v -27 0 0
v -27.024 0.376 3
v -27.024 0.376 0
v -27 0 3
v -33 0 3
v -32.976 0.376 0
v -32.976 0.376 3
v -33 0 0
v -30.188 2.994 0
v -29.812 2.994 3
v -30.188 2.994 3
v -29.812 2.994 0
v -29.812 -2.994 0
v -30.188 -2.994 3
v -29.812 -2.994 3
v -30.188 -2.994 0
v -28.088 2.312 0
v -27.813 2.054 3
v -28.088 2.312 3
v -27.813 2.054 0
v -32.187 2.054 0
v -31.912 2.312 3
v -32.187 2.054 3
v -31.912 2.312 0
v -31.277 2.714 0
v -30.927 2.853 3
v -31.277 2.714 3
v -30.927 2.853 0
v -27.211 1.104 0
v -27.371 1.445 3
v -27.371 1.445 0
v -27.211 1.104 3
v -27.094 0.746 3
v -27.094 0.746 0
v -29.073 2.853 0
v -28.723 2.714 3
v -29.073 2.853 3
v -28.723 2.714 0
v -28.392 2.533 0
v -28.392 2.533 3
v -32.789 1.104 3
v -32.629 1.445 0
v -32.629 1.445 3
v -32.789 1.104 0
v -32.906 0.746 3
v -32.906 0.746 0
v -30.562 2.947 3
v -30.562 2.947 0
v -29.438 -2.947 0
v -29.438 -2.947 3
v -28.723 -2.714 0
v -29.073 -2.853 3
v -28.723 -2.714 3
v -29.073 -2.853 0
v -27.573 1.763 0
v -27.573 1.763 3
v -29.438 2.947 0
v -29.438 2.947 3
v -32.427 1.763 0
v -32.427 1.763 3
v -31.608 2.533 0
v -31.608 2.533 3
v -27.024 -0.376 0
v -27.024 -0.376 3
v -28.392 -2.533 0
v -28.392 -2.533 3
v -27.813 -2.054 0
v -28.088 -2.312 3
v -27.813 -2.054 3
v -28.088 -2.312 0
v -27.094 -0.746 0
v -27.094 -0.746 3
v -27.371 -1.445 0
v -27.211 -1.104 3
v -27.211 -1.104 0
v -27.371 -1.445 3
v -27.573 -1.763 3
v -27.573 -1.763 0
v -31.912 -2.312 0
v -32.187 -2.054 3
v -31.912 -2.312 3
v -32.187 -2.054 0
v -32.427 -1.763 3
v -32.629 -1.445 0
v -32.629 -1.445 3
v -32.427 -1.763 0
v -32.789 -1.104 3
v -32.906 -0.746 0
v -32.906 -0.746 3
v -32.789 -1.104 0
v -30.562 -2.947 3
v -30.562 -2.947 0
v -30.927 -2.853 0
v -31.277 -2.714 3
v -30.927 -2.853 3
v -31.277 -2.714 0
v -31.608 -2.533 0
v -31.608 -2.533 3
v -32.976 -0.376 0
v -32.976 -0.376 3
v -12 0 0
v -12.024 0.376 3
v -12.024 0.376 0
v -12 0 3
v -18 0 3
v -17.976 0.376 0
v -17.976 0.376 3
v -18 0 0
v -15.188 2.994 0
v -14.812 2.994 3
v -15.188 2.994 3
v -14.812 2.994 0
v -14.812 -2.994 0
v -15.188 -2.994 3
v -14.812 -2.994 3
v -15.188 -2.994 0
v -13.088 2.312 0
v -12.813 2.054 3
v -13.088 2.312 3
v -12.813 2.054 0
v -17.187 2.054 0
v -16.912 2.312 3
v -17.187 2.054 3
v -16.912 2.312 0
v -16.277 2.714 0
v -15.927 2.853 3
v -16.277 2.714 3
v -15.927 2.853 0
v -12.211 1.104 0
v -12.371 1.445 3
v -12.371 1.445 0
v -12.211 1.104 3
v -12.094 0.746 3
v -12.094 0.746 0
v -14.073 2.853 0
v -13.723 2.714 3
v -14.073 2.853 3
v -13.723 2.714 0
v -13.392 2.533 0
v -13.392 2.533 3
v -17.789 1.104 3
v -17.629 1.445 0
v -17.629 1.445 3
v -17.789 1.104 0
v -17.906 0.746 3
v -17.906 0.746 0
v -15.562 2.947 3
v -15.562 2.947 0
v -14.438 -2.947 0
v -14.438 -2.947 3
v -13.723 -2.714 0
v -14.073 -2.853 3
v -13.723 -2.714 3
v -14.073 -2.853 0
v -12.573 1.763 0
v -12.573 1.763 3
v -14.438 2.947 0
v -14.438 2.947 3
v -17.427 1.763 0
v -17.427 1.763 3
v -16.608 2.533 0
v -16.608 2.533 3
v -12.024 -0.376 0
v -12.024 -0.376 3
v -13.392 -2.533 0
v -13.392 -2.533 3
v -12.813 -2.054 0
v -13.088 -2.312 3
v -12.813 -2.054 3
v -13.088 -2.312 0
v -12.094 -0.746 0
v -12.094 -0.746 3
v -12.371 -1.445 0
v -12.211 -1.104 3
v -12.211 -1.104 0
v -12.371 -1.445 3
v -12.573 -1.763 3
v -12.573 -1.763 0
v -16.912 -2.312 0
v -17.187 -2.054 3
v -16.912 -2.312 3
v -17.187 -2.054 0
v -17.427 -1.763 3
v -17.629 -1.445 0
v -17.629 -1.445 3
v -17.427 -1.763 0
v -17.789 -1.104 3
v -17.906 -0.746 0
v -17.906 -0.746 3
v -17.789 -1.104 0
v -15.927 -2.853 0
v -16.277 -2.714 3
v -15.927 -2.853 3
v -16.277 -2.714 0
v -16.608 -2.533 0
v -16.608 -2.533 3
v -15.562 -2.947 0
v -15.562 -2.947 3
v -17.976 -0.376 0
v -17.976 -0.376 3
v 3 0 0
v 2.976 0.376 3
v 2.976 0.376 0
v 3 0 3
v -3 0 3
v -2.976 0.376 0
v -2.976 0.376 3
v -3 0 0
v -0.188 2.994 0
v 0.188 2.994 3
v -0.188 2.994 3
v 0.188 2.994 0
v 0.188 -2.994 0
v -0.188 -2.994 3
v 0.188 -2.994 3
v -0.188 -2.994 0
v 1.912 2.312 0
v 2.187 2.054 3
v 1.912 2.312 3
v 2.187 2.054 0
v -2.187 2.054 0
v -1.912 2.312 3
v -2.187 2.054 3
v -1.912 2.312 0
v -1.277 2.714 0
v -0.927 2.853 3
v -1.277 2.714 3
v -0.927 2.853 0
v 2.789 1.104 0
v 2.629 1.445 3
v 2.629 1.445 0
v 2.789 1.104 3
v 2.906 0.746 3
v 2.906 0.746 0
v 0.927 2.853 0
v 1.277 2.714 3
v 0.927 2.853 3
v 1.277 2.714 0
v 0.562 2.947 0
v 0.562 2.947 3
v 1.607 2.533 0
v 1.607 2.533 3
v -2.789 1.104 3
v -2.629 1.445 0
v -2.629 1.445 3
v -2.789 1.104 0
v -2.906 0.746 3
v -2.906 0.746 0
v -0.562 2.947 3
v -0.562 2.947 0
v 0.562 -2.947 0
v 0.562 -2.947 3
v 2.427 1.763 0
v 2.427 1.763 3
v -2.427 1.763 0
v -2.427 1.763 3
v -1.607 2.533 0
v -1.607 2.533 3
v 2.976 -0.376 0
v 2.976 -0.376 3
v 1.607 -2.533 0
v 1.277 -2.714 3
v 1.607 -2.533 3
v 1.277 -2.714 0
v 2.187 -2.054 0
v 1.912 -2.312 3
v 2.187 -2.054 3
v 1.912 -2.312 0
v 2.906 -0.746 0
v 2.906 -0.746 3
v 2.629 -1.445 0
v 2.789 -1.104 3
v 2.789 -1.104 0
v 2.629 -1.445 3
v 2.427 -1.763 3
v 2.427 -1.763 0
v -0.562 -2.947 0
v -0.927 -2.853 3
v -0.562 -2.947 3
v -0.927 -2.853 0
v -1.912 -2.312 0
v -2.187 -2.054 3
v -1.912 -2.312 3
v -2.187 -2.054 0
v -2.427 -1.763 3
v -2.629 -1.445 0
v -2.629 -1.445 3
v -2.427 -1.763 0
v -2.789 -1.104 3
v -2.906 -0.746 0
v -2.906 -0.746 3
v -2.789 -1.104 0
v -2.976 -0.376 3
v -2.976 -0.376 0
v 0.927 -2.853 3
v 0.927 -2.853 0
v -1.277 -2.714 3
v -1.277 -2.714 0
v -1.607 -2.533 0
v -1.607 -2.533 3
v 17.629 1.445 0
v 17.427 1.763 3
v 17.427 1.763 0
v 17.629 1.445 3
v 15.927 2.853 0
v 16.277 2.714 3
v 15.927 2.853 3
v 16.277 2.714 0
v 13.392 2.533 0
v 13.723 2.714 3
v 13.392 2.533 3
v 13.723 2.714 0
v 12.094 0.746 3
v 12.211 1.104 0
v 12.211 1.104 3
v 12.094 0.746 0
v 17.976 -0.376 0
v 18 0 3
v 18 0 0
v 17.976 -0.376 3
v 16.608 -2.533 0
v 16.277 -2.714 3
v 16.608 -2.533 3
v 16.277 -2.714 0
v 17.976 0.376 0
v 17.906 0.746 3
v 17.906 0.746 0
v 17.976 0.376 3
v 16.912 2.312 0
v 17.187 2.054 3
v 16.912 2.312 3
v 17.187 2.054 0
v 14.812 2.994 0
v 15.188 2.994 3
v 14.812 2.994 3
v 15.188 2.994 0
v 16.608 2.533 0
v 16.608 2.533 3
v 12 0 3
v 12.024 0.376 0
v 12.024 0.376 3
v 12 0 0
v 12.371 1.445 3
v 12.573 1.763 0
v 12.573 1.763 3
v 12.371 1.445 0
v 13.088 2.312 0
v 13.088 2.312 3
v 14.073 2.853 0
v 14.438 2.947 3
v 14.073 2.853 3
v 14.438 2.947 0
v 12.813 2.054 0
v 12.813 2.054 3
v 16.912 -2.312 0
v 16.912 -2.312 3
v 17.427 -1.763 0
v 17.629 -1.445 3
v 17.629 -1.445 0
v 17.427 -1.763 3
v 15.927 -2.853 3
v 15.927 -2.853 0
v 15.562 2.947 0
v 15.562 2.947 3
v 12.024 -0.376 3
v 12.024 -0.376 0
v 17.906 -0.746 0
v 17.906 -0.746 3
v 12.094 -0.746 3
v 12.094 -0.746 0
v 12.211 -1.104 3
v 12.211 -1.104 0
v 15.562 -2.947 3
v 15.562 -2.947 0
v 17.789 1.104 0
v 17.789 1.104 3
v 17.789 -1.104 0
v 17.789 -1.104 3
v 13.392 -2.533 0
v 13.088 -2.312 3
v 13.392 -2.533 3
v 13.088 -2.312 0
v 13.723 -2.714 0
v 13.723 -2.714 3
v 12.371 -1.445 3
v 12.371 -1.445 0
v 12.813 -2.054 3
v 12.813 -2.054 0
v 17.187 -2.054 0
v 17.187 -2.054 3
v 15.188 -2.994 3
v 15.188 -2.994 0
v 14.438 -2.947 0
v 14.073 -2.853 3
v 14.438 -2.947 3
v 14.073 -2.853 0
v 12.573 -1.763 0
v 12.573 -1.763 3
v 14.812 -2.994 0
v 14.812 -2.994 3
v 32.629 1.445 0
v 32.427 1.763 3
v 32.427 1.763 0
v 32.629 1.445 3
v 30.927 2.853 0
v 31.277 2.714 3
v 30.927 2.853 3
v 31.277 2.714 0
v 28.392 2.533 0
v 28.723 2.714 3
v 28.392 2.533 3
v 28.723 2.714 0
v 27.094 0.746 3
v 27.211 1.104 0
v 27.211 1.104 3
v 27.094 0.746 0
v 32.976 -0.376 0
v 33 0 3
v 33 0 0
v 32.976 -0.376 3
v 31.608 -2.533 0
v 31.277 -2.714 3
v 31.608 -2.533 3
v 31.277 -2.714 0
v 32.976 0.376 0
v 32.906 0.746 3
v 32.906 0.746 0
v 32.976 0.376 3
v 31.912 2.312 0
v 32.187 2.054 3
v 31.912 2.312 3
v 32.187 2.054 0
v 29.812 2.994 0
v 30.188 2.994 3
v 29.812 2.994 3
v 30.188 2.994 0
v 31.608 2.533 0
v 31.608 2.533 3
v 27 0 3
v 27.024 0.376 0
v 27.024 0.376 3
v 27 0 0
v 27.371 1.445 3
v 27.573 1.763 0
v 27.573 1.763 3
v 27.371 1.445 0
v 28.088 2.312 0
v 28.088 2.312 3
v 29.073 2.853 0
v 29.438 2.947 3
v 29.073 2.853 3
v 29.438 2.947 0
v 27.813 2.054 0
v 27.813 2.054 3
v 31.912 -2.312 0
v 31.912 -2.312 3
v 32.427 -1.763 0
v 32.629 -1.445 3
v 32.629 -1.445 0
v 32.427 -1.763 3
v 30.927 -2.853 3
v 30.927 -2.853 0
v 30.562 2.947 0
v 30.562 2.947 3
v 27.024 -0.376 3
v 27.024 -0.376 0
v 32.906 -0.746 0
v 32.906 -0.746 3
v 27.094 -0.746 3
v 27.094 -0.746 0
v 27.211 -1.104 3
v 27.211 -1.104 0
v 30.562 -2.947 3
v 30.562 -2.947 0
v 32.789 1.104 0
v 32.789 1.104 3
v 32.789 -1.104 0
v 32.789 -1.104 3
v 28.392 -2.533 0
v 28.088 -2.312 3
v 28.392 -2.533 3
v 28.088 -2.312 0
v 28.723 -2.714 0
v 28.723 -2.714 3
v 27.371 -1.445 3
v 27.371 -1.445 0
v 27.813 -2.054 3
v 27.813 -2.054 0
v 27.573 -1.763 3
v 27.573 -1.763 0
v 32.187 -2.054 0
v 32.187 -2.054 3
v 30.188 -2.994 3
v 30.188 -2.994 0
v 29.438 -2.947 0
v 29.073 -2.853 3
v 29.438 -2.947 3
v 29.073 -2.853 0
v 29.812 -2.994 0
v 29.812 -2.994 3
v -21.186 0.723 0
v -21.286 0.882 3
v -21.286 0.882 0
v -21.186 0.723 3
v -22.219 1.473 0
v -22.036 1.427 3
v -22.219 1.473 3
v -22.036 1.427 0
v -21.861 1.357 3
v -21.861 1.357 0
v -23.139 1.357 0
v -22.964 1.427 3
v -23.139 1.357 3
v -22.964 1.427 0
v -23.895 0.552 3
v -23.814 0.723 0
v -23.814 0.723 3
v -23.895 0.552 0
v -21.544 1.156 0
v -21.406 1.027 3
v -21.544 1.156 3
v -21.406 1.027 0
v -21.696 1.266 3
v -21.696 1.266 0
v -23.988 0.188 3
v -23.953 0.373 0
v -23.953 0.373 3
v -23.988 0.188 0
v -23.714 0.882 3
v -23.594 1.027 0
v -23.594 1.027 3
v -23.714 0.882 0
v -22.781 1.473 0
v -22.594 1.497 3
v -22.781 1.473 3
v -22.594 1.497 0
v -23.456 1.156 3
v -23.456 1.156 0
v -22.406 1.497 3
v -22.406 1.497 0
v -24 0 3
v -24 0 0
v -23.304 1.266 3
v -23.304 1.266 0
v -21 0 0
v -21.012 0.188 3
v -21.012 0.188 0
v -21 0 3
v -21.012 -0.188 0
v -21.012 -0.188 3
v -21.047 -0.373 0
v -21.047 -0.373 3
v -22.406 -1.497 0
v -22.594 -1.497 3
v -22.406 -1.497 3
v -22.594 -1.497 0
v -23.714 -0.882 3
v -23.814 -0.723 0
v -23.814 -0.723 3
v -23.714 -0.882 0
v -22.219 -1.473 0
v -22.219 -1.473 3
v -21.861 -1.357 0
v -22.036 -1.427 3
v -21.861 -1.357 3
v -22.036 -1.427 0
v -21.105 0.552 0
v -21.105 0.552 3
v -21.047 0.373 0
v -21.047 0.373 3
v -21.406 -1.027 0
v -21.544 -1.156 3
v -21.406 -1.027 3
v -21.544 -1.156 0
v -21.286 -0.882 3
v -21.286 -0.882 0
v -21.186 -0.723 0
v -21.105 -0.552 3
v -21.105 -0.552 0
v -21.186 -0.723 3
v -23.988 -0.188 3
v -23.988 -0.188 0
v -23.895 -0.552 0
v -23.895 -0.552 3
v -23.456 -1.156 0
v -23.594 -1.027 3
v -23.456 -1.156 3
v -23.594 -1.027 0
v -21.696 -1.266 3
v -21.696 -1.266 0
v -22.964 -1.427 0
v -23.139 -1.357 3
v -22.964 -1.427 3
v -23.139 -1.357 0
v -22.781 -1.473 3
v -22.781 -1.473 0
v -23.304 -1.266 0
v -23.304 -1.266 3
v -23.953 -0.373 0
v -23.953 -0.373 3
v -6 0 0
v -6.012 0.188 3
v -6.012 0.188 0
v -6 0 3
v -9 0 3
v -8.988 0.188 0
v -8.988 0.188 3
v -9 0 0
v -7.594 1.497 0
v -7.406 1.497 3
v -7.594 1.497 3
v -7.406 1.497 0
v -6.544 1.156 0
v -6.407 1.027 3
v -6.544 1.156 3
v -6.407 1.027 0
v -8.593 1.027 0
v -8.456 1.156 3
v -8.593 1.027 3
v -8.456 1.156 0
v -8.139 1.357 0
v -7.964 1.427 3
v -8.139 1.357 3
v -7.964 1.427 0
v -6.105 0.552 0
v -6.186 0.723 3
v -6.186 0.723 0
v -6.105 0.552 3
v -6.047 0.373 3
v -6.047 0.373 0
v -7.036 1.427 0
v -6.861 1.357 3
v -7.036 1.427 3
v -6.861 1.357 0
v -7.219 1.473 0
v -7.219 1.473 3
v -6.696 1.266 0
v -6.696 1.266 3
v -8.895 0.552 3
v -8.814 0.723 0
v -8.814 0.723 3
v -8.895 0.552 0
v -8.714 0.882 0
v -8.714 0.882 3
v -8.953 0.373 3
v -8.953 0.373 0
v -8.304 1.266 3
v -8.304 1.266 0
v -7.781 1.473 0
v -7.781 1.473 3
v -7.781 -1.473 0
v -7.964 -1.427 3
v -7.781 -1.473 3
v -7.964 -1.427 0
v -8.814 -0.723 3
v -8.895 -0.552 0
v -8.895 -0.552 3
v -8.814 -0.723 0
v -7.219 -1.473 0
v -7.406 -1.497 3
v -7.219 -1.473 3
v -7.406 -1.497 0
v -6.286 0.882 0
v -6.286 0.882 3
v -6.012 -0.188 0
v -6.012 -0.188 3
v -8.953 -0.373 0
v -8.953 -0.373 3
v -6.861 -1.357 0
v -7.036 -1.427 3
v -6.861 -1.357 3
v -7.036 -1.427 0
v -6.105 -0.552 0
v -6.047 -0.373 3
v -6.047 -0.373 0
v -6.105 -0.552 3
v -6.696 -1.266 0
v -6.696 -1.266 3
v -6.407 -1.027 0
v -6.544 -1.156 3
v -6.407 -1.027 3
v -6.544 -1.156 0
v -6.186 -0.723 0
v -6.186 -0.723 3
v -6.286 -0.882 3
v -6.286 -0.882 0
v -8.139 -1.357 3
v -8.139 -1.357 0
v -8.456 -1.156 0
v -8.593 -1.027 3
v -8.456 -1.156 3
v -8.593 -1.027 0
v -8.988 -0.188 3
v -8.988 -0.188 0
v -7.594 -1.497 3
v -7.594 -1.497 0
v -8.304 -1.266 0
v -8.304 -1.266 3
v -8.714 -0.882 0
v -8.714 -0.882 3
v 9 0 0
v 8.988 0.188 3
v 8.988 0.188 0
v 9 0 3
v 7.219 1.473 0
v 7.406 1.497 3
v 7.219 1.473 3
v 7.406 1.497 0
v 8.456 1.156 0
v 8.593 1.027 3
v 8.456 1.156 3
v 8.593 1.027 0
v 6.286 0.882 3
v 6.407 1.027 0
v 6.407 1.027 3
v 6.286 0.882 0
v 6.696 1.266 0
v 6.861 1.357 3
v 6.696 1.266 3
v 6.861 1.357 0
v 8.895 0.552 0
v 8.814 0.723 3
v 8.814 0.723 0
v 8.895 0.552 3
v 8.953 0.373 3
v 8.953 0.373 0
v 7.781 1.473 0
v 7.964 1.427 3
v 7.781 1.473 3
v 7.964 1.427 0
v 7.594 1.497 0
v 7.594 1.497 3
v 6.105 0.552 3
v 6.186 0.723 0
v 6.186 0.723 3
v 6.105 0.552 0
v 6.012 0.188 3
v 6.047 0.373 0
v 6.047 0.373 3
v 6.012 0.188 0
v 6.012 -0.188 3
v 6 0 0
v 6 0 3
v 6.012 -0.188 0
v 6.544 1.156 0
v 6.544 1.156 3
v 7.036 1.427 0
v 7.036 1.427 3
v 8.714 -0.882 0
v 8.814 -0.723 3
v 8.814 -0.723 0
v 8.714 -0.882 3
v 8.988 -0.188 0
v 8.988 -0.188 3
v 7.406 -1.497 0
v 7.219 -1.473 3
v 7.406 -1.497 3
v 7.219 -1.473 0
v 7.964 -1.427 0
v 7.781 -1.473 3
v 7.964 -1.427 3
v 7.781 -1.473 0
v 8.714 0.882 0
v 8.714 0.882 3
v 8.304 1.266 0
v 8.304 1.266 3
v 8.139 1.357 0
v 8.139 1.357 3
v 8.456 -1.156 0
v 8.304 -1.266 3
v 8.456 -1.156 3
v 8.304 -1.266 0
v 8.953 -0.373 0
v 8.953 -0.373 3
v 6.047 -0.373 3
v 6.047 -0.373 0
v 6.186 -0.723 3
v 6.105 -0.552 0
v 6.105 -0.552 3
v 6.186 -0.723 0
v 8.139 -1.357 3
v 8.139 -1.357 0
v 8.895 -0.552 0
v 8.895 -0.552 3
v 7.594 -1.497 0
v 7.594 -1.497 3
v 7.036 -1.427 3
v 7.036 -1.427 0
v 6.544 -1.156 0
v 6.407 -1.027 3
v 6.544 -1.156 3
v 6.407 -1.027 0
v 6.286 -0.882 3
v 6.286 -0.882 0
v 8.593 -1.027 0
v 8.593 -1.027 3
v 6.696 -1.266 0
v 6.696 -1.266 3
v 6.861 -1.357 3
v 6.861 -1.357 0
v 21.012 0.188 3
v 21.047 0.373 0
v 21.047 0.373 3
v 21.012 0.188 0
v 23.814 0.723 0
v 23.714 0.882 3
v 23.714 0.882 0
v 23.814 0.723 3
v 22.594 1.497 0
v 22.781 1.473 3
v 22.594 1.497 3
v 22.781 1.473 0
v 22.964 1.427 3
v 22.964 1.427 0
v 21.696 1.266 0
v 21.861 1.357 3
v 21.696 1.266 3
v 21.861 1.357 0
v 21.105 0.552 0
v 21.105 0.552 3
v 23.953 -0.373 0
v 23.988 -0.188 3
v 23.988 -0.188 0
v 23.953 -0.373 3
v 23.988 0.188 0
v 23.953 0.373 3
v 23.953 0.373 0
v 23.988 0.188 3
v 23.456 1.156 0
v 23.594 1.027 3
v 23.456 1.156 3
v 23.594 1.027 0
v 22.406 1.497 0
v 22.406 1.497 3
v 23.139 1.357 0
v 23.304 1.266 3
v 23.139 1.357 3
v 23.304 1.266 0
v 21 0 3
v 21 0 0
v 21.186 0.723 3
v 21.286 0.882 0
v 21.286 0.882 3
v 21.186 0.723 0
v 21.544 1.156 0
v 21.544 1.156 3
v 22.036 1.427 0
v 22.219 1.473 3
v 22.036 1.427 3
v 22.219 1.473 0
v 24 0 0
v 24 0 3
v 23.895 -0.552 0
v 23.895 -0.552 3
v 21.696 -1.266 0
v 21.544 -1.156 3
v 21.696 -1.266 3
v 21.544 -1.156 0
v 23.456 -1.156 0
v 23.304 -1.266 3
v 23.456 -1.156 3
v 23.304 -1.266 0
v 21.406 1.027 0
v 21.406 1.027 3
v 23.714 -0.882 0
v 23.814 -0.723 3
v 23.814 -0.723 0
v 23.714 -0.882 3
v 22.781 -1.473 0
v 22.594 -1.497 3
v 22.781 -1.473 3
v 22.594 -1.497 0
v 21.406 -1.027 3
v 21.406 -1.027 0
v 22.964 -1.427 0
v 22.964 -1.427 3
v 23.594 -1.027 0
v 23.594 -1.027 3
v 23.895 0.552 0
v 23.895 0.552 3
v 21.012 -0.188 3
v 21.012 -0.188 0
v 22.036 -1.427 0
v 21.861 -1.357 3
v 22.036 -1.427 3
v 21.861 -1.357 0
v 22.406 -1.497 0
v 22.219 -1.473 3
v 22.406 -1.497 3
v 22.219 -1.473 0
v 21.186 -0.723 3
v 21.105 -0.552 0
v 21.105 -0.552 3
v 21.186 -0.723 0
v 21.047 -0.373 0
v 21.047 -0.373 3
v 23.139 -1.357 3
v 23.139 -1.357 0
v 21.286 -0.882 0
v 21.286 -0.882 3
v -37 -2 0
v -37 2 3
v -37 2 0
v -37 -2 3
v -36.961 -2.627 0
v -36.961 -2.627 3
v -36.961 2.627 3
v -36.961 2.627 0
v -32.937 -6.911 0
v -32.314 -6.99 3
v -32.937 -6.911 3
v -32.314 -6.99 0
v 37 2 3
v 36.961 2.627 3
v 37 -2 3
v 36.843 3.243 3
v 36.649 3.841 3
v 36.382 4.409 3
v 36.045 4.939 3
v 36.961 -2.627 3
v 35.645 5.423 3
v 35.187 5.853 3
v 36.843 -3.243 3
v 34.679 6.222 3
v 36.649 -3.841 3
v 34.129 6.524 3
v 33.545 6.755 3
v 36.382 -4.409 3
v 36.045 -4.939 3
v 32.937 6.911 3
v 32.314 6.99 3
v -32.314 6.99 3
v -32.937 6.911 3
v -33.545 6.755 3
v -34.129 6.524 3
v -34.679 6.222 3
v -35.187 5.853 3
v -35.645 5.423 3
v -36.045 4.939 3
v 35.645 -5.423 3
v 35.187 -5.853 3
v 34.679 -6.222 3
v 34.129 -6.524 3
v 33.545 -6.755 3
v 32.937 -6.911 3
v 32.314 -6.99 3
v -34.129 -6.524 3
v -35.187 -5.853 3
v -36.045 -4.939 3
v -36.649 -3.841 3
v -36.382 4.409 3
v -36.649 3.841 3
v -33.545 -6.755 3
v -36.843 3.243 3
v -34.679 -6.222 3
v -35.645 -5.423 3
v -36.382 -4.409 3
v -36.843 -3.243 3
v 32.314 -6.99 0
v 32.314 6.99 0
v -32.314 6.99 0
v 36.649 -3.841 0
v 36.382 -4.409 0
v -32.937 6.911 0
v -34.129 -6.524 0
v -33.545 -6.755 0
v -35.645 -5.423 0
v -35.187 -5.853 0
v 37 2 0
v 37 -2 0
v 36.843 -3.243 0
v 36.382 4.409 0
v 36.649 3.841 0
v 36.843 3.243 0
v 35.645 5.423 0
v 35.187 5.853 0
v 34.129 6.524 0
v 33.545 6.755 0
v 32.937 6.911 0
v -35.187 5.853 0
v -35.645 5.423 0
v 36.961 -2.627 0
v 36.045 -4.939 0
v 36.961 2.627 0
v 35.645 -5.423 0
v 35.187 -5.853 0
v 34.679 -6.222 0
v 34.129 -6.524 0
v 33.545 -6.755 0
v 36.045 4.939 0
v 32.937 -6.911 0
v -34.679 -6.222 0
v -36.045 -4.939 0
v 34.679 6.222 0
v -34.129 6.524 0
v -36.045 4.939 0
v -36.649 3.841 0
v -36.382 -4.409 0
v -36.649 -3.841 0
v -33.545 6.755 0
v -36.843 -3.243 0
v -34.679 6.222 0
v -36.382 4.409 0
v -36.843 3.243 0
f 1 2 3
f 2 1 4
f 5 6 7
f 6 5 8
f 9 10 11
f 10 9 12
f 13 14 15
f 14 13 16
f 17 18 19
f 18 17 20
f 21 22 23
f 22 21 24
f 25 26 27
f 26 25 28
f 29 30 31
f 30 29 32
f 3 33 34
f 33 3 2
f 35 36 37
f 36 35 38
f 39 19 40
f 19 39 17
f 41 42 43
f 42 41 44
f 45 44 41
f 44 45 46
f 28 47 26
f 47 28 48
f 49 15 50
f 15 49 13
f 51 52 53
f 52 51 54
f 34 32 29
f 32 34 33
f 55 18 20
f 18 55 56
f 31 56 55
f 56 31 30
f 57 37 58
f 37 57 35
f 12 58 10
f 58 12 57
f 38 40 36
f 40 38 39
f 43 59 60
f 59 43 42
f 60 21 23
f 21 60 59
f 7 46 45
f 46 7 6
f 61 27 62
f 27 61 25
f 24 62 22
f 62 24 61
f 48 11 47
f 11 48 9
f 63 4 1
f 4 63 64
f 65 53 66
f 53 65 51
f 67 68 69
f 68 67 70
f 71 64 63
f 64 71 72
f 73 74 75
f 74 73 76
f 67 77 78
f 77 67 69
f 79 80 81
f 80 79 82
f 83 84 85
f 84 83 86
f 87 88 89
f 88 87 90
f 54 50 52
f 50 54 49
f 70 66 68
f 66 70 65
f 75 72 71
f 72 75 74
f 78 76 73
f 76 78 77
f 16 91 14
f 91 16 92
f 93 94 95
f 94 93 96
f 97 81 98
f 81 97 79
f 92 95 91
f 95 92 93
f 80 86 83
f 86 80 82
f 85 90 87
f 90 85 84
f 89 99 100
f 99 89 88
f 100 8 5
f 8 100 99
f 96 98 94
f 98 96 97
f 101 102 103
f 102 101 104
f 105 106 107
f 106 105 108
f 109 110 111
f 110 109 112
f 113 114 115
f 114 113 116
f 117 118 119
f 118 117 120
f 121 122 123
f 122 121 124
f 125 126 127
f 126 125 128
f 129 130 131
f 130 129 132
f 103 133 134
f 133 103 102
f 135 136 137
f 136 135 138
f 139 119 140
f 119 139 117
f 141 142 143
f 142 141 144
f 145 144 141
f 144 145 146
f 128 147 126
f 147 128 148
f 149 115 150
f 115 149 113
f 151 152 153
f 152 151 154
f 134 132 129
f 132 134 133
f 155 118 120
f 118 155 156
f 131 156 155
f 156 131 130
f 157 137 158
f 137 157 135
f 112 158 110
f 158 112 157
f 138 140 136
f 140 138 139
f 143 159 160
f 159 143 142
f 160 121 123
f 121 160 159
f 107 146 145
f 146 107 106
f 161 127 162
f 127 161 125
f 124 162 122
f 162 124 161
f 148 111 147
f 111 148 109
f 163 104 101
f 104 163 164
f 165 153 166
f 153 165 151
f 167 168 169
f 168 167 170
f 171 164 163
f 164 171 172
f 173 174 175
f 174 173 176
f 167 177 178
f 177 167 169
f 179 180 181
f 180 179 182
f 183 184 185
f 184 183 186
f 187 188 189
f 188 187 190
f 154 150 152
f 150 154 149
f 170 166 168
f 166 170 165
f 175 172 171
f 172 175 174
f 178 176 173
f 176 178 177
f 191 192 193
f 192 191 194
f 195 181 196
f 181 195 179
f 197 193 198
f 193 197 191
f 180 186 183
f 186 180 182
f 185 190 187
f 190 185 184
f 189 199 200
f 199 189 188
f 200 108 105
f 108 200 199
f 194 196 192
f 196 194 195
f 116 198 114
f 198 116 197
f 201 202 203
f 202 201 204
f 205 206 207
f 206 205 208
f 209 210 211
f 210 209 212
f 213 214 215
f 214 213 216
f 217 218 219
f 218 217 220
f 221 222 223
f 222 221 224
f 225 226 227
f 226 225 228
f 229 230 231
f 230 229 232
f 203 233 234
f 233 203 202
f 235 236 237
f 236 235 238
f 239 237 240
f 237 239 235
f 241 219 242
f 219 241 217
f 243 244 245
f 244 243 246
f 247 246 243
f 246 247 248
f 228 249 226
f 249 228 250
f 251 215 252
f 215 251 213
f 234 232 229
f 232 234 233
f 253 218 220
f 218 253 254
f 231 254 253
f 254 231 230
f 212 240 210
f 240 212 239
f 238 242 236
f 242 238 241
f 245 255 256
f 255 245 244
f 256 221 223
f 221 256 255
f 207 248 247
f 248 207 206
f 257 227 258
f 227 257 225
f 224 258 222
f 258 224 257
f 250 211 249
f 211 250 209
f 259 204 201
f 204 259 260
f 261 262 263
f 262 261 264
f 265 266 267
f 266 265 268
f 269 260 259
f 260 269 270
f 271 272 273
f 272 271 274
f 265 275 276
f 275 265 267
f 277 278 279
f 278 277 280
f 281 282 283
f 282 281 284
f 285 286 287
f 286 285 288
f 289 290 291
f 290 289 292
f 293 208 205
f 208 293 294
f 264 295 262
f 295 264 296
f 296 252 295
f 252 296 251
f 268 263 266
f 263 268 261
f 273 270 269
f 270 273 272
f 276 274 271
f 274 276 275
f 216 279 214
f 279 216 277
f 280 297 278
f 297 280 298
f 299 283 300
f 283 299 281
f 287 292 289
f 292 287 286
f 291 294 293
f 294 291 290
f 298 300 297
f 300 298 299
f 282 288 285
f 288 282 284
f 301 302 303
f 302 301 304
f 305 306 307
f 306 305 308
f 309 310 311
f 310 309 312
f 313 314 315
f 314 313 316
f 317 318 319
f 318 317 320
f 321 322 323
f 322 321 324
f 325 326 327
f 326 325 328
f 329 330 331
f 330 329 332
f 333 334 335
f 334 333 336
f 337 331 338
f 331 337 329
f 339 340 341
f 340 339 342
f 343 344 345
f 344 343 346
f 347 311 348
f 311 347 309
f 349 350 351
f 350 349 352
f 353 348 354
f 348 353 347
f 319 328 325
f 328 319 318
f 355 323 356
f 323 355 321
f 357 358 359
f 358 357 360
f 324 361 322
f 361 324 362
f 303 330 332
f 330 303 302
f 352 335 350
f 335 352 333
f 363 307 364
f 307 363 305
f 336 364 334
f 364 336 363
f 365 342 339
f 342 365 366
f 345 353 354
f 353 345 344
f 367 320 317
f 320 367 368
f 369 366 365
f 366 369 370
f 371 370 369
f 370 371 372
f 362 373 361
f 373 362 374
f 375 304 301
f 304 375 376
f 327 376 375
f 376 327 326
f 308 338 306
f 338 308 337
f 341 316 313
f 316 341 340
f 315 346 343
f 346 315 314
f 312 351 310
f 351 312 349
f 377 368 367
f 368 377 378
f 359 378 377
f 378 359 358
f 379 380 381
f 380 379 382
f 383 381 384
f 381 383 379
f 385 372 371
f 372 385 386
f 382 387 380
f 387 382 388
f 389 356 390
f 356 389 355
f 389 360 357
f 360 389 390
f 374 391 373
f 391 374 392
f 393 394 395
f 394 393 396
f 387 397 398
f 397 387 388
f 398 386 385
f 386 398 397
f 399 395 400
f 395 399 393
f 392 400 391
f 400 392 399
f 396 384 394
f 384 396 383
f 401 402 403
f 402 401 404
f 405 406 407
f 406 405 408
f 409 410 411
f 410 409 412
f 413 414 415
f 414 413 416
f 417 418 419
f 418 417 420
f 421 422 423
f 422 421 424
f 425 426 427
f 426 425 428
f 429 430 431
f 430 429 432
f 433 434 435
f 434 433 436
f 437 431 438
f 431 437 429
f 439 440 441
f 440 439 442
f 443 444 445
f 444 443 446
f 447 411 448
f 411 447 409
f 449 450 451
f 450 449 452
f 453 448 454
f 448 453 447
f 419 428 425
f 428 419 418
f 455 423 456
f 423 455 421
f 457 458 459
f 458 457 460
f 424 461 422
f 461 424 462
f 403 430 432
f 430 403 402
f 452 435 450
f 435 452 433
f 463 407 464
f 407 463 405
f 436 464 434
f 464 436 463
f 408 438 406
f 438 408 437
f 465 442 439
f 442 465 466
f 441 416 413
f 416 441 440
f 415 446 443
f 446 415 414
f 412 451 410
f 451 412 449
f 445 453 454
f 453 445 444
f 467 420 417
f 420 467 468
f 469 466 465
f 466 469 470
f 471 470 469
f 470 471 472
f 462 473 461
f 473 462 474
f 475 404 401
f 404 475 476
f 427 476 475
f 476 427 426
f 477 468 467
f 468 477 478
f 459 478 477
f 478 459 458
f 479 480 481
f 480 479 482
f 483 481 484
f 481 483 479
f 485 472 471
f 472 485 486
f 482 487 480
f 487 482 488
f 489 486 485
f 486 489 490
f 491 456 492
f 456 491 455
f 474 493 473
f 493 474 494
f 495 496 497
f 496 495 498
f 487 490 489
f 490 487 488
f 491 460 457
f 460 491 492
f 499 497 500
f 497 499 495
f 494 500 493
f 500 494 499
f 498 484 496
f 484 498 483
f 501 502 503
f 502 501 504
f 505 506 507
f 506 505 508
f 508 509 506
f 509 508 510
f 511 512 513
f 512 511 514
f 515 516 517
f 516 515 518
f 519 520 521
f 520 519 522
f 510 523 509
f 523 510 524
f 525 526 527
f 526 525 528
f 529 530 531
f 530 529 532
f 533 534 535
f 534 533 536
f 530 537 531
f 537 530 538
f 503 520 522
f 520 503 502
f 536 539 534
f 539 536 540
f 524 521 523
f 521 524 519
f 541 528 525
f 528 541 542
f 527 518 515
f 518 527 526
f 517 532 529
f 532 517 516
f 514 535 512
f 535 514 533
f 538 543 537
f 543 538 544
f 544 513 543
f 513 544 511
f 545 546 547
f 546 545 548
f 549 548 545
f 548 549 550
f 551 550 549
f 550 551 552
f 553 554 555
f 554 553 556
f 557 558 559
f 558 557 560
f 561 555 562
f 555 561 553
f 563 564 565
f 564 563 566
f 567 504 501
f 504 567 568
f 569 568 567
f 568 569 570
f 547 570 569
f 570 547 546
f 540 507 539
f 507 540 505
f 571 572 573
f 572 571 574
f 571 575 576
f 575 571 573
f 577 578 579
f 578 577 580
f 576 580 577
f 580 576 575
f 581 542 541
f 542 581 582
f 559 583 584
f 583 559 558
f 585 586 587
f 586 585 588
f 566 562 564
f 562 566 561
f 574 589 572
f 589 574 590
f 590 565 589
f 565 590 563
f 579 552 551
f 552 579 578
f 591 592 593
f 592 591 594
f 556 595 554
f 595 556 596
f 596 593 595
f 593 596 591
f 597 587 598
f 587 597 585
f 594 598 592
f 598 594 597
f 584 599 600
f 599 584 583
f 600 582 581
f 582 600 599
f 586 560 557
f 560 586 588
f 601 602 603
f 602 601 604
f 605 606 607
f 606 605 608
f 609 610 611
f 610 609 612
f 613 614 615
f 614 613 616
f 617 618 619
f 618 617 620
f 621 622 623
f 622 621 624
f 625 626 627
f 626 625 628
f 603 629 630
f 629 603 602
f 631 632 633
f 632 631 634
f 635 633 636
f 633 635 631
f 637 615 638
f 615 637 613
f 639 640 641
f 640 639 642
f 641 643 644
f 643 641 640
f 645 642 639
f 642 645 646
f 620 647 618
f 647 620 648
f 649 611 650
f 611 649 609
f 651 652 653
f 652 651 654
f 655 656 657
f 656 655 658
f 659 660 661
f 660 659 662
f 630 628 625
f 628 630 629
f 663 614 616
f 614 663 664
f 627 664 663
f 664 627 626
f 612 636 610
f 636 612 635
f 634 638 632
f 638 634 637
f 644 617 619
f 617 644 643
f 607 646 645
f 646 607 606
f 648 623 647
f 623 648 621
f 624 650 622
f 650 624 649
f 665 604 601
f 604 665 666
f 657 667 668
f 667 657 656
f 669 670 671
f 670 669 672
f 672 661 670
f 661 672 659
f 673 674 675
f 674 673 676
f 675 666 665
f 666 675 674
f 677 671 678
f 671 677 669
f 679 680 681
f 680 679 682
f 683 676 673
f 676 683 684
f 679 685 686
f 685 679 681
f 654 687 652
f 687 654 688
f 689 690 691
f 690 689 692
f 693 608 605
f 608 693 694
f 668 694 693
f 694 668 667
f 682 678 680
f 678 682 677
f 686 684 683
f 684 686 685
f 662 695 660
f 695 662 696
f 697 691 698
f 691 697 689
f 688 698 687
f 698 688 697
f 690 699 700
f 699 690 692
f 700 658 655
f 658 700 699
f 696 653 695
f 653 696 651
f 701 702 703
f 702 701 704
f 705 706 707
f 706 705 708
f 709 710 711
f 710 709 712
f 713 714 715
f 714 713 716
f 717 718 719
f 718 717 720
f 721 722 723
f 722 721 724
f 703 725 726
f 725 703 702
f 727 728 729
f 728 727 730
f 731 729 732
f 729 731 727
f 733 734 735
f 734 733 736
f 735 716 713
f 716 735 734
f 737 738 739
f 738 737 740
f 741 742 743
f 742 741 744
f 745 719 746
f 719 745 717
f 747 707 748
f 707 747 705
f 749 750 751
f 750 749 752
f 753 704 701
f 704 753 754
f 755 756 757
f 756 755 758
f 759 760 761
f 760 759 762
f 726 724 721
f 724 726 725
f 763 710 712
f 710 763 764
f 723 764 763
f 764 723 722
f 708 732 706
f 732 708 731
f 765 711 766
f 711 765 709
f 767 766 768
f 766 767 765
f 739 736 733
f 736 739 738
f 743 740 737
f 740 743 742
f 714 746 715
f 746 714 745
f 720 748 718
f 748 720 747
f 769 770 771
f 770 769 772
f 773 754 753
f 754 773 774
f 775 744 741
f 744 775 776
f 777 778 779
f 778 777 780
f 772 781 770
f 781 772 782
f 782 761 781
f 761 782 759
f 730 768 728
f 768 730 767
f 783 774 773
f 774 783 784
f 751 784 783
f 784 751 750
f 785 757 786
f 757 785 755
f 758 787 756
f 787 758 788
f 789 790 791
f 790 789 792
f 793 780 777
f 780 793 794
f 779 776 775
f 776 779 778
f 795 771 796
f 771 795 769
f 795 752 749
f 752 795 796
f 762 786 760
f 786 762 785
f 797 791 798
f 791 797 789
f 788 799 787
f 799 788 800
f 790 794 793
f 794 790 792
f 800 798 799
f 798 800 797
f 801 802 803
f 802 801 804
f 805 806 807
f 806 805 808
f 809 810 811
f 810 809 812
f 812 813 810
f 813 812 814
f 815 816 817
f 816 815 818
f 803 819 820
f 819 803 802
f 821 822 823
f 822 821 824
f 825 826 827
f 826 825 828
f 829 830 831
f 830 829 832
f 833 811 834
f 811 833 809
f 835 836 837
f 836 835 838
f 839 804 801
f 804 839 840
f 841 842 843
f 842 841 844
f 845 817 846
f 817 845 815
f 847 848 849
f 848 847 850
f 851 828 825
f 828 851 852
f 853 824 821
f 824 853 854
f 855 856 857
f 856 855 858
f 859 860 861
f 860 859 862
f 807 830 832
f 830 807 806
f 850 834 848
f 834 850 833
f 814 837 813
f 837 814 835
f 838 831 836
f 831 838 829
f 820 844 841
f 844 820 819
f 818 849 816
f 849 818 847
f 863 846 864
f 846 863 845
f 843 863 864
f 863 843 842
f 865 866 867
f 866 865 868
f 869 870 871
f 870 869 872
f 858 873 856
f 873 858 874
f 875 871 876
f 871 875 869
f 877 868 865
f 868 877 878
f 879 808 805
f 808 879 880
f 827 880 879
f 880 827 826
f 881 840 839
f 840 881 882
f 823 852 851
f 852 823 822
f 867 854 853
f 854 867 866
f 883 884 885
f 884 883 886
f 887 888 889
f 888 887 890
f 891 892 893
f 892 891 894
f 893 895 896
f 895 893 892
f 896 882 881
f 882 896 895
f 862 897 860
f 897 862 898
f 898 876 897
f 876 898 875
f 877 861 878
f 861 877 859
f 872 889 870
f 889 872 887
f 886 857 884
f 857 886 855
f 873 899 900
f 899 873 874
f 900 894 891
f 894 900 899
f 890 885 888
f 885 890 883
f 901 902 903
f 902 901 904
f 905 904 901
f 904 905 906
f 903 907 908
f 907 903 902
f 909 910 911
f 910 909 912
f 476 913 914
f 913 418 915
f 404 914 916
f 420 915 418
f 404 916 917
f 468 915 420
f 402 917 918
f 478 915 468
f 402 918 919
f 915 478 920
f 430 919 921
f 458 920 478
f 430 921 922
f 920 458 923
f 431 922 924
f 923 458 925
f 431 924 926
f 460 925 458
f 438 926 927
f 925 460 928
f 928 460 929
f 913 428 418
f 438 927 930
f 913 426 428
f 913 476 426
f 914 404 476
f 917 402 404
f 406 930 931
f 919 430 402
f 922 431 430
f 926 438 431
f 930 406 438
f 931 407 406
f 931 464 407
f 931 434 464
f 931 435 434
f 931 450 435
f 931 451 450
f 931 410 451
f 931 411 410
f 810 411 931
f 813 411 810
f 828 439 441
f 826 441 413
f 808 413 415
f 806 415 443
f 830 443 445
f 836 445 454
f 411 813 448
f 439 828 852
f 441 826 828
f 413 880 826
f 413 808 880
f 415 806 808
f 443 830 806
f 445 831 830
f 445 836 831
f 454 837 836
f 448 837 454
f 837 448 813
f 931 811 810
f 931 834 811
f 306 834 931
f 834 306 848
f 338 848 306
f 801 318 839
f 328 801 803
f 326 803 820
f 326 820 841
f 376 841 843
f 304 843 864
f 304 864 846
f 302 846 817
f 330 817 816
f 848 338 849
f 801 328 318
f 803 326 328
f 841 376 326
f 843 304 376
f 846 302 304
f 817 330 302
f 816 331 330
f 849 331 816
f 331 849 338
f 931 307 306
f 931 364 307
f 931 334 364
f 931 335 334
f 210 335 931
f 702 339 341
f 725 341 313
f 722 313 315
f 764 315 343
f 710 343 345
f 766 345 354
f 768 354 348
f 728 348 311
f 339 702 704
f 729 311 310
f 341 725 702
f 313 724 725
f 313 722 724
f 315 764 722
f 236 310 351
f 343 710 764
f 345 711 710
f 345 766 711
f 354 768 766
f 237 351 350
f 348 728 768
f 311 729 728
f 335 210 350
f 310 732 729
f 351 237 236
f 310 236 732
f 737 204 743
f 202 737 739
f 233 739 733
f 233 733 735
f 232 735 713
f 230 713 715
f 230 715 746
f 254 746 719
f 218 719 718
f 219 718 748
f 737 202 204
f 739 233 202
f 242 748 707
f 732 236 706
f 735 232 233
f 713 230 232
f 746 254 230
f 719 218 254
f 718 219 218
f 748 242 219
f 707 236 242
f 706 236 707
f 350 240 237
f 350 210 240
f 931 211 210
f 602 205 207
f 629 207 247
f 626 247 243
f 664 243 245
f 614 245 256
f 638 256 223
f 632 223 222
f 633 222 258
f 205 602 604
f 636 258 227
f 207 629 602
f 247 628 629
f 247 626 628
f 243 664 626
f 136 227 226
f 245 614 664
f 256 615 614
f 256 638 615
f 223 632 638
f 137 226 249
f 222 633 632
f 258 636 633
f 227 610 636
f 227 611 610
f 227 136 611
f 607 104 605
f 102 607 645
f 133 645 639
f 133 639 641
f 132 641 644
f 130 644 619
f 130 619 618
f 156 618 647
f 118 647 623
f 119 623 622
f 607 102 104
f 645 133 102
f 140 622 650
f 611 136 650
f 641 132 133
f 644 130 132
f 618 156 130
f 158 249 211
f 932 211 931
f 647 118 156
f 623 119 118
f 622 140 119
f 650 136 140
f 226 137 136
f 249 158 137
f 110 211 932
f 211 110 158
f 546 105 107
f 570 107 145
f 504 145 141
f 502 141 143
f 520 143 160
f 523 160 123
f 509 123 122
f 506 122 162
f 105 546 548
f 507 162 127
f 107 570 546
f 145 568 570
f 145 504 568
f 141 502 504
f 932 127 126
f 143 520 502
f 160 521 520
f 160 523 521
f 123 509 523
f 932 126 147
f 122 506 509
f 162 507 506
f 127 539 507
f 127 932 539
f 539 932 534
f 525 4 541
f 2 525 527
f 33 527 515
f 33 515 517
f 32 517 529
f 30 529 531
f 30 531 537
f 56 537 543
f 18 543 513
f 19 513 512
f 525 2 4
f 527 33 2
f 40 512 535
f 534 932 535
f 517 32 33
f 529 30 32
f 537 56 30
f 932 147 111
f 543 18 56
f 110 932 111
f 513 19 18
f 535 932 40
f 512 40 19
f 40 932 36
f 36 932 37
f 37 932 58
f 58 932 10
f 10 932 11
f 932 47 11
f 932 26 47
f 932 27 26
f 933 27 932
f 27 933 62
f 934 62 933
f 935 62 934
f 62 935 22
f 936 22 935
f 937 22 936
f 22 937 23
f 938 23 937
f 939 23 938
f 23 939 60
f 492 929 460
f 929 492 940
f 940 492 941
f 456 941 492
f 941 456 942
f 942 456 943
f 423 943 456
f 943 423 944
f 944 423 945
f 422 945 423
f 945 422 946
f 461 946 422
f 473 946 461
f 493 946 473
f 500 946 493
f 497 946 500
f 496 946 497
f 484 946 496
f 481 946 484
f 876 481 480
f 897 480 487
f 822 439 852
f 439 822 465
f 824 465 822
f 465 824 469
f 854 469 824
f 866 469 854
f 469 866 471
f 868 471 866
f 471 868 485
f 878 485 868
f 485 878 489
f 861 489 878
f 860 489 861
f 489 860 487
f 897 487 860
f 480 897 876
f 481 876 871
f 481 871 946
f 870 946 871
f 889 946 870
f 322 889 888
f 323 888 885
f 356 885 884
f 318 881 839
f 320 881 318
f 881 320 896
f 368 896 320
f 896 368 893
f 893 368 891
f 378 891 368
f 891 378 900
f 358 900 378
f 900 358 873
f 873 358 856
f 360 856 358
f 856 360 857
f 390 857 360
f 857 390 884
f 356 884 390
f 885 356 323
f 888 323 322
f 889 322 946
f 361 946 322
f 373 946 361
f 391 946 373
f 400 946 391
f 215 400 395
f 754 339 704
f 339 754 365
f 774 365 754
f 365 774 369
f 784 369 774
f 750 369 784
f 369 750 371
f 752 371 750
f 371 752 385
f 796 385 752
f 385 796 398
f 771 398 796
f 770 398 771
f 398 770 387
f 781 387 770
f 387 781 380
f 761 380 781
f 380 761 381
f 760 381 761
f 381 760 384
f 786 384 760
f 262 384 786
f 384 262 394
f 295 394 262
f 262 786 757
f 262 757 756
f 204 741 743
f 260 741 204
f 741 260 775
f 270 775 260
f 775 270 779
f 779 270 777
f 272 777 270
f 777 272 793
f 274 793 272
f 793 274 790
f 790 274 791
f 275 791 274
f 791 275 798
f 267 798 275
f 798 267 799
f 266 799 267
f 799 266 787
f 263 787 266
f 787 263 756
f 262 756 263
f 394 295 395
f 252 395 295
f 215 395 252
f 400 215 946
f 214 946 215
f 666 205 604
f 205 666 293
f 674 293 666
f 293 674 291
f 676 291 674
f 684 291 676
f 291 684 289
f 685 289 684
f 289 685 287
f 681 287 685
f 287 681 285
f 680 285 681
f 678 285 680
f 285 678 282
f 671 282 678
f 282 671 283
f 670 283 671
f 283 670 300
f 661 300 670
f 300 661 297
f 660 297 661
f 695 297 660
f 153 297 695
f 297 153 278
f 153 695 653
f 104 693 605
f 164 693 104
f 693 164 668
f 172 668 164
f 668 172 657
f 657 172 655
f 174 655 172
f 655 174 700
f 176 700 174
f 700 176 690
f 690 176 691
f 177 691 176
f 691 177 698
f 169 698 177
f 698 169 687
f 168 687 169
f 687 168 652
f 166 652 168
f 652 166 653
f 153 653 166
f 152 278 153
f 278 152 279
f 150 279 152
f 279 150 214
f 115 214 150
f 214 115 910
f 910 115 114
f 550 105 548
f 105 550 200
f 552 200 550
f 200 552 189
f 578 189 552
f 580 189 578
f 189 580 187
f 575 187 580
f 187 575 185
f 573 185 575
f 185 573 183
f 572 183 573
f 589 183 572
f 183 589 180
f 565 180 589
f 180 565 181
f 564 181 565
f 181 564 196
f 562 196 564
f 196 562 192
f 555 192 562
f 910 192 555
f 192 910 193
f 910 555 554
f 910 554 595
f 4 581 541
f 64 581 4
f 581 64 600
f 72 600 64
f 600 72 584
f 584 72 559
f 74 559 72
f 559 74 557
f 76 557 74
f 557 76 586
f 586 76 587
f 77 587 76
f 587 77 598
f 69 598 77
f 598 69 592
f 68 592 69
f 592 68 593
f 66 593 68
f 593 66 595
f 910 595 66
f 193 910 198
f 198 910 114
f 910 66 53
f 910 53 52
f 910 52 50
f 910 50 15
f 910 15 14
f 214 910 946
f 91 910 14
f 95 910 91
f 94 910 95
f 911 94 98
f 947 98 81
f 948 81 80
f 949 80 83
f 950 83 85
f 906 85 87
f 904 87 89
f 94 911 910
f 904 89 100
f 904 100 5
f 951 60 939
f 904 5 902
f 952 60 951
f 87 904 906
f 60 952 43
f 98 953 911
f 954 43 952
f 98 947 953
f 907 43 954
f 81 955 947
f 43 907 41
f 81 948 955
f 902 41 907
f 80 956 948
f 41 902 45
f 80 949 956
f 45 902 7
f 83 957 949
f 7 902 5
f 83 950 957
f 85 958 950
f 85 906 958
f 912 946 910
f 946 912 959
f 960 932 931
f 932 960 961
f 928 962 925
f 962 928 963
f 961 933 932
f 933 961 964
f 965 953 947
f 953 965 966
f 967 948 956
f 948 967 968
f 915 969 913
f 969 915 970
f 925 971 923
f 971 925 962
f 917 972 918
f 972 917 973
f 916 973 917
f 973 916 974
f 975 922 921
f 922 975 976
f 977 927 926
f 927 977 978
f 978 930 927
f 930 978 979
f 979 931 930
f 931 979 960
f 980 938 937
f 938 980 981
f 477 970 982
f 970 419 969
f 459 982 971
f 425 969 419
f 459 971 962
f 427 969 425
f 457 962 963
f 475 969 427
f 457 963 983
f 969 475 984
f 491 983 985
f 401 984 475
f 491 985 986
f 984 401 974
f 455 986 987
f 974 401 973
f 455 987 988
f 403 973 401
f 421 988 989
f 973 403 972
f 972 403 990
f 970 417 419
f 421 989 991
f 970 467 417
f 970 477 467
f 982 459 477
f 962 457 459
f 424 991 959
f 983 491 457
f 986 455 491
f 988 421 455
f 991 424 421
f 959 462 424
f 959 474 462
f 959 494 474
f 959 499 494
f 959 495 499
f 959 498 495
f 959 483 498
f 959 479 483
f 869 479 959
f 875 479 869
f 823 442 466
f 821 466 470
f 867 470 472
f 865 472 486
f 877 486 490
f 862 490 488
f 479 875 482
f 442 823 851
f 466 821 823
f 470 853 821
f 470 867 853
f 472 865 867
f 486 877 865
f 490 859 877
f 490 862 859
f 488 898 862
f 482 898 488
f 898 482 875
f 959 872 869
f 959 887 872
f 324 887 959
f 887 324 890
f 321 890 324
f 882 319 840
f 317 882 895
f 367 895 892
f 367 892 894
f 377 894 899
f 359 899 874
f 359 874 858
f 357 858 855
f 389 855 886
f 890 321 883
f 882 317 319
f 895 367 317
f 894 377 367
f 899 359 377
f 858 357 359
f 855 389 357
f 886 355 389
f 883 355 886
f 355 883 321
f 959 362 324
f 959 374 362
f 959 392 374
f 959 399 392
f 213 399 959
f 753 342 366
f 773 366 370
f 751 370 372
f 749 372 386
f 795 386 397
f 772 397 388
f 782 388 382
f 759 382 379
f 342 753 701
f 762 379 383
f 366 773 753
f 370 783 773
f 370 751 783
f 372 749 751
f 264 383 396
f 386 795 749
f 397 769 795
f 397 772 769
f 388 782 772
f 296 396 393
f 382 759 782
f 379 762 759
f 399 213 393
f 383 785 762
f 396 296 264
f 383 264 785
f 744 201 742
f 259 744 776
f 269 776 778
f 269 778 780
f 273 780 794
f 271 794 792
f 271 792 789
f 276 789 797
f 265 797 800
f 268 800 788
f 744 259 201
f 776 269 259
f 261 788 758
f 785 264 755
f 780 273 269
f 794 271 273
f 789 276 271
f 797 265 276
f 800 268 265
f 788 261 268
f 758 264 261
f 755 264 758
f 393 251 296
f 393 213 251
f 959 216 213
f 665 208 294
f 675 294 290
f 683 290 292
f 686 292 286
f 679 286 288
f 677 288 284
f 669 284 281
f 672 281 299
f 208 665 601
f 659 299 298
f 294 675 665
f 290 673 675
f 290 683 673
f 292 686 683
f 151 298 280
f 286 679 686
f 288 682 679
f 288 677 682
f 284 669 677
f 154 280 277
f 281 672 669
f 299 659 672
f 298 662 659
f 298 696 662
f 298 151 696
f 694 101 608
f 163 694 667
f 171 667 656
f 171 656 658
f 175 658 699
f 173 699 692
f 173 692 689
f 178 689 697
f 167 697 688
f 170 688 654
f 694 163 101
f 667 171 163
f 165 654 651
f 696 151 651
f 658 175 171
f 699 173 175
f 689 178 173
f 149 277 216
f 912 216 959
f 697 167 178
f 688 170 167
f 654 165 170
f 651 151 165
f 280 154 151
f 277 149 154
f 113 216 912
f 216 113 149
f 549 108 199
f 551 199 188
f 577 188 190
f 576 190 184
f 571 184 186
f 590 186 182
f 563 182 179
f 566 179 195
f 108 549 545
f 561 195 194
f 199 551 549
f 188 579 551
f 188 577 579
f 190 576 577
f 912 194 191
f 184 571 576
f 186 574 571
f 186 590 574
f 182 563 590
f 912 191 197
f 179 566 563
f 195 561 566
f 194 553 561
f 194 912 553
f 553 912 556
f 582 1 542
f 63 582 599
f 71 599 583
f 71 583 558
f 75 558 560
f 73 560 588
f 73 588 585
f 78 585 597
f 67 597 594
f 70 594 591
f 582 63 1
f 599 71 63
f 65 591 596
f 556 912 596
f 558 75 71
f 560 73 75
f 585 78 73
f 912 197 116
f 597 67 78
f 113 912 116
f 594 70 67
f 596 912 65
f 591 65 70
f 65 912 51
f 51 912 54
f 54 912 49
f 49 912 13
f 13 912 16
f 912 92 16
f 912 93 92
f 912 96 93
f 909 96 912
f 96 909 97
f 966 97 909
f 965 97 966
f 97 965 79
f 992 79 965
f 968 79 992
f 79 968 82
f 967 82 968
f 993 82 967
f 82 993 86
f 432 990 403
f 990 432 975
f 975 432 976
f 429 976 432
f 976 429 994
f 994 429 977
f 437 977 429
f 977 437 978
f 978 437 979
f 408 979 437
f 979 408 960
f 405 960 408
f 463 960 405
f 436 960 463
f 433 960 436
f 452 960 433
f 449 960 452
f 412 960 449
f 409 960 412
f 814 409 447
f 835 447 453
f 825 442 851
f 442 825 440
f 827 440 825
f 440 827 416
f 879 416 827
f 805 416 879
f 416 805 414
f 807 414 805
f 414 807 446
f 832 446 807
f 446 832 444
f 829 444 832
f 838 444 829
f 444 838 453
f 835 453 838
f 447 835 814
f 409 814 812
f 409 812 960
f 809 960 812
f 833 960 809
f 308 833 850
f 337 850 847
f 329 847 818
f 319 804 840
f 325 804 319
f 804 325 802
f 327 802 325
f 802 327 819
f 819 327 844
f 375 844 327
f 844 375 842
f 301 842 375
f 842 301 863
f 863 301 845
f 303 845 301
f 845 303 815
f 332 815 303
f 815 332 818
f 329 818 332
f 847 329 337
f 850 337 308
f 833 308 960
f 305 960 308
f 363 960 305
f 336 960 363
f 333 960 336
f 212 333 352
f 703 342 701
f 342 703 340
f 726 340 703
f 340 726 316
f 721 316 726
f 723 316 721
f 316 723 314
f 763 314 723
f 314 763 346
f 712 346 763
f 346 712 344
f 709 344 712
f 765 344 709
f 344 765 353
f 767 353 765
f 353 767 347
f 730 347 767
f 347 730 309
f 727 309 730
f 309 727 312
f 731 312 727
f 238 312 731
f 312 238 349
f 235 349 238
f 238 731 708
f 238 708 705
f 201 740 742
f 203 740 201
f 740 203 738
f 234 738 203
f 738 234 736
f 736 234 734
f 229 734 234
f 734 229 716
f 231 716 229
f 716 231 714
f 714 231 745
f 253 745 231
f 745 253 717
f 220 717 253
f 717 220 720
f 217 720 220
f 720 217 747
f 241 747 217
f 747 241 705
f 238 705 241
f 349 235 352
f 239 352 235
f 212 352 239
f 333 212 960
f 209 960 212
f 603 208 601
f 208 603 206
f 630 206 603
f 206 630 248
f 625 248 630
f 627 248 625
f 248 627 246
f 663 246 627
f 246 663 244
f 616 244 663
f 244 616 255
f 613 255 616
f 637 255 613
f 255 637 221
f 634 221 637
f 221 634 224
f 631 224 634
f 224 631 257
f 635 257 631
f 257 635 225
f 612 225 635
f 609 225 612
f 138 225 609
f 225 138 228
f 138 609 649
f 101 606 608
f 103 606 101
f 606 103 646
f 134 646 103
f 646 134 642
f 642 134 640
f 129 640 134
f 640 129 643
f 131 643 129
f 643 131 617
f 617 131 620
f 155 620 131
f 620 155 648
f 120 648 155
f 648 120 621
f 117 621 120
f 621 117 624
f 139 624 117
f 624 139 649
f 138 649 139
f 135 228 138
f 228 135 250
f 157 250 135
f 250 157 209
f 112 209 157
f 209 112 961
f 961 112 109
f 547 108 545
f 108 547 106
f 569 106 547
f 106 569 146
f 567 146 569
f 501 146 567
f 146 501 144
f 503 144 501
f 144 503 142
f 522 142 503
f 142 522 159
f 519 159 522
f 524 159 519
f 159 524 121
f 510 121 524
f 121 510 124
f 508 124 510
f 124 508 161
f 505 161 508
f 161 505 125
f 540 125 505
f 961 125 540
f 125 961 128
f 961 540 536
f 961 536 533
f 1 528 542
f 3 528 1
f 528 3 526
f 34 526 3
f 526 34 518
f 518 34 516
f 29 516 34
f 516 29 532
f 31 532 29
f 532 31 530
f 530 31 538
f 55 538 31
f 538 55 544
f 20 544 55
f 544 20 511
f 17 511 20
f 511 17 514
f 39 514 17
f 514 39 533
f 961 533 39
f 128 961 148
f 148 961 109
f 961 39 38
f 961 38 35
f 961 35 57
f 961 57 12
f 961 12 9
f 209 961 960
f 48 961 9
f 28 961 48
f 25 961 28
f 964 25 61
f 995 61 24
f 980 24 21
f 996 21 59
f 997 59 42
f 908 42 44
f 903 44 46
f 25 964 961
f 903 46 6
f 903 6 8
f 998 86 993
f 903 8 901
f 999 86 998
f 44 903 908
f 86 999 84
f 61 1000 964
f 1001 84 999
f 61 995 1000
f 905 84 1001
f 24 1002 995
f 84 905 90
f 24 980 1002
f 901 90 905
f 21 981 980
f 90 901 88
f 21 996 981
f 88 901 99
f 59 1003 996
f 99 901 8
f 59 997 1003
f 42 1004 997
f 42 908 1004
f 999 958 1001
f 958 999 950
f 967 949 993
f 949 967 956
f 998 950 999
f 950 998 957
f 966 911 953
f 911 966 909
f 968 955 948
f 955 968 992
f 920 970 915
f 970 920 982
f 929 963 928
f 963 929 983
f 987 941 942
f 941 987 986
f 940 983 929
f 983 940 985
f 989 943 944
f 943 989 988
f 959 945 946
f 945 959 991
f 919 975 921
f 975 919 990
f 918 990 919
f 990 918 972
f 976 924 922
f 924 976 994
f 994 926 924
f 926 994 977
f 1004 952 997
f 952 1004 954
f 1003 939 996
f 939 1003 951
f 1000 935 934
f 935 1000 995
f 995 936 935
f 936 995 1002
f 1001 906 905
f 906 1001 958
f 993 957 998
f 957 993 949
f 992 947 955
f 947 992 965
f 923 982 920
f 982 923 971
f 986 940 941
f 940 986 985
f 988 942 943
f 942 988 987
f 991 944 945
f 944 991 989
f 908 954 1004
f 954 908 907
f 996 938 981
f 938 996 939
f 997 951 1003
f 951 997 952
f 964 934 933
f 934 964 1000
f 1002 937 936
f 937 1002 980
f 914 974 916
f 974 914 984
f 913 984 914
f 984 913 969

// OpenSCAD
$fn = 50;


difference() {
	union() {
		translate(v = [0, 0, 0]) {
			rotate(a = [0, 0, 0]) {
				hull() {
					translate(v = [-32.0000000000, 2.0000000000, 0]) {
						rotate(a = [0, 0, 0]) {
							translate(v = [0, 0, 0]) {
								rotate(a = [0, 0, 0]) {
									cylinder(h = 3, r = 5);
								}
							}
						}
					}
					translate(v = [32.0000000000, 2.0000000000, 0]) {
						rotate(a = [0, 0, 0]) {
							translate(v = [0, 0, 0]) {
								rotate(a = [0, 0, 0]) {
									cylinder(h = 3, r = 5);
								}
							}
						}
					}
					translate(v = [-32.0000000000, -2.0000000000, 0]) {
						rotate(a = [0, 0, 0]) {
							translate(v = [0, 0, 0]) {
								rotate(a = [0, 0, 0]) {
									cylinder(h = 3, r = 5);
								}
							}
						}
					}
					translate(v = [32.0000000000, -2.0000000000, 0]) {
						rotate(a = [0, 0, 0]) {
							translate(v = [0, 0, 0]) {
								rotate(a = [0, 0, 0]) {
									cylinder(h = 3, r = 5);
								}
							}
						}
					}
				}
			}
		}
	}
	union() {
		translate(v = [-30.0000000000, 0.0000000000, 0]) {
			rotate(a = [0, 0, 0]) {
				translate(v = [0, 0, -50]) {
					rotate(a = [0, 0, 0]) {
						cylinder(h = 100, r = 3.0000000000);
					}
				}
			}
		}
		translate(v = [-15.0000000000, 0.0000000000, 0]) {
			rotate(a = [0, 0, 0]) {
				translate(v = [0, 0, -50]) {
					rotate(a = [0, 0, 0]) {
						cylinder(h = 100, r = 3.0000000000);
					}
				}
			}
		}
		translate(v = [0.0000000000, 0.0000000000, 0]) {
			rotate(a = [0, 0, 0]) {
				translate(v = [0, 0, -50]) {
					rotate(a = [0, 0, 0]) {
						cylinder(h = 100, r = 3.0000000000);
					}
				}
			}
		}
		translate(v = [15.0000000000, 0.0000000000, 0]) {
			rotate(a = [0, 0, 0]) {
				translate(v = [0, 0, -50]) {
					rotate(a = [0, 0, 0]) {
						cylinder(h = 100, r = 3.0000000000);
					}
				}
			}
		}
		translate(v = [30.0000000000, 0.0000000000, 0]) {
			rotate(a = [0, 0, 0]) {
				translate(v = [0, 0, -50]) {
					rotate(a = [0, 0, 0]) {
						cylinder(h = 100, r = 3.0000000000);
					}
				}
			}
		}
		translate(v = [-30.0000000000, 0.0000000000, 0]) {
			rotate(a = [0, 0, 0]) {
				translate(v = [0, 0, -50]) {
					rotate(a = [0, 0, 0]) {
						cylinder(h = 100, r = 1.5000000000);
					}
				}
			}
		}
		translate(v = [-22.5000000000, 0.0000000000, 0]) {
			rotate(a = [0, 0, 0]) {
				translate(v = [0, 0, -50]) {
					rotate(a = [0, 0, 0]) {
						cylinder(h = 100, r = 1.5000000000);
					}
				}
			}
		}
		translate(v = [-15.0000000000, 0.0000000000, 0]) {
			rotate(a = [0, 0, 0]) {
				translate(v = [0, 0, -50]) {
					rotate(a = [0, 0, 0]) {
						cylinder(h = 100, r = 1.5000000000);
					}
				}
			}
		}
		translate(v = [-7.5000000000, 0.0000000000, 0]) {
			rotate(a = [0, 0, 0]) {
				translate(v = [0, 0, -50]) {
					rotate(a = [0, 0, 0]) {
						cylinder(h = 100, r = 1.5000000000);
					}
				}
			}
		}
		translate(v = [0.0000000000, 0.0000000000, 0]) {
			rotate(a = [0, 0, 0]) {
				translate(v = [0, 0, -50]) {
					rotate(a = [0, 0, 0]) {
						cylinder(h = 100, r = 1.5000000000);
					}
				}
			}
		}
		translate(v = [7.5000000000, 0.0000000000, 0]) {
			rotate(a = [0, 0, 0]) {
				translate(v = [0, 0, -50]) {
					rotate(a = [0, 0, 0]) {
						cylinder(h = 100, r = 1.5000000000);
					}
				}
			}
		}
		translate(v = [15.0000000000, 0.0000000000, 0]) {
			rotate(a = [0, 0, 0]) {
				translate(v = [0, 0, -50]) {
					rotate(a = [0, 0, 0]) {
						cylinder(h = 100, r = 1.5000000000);
					}
				}
			}
		}
		translate(v = [22.5000000000, 0.0000000000, 0]) {
			rotate(a = [0, 0, 0]) {
				translate(v = [0, 0, -50]) {
					rotate(a = [0, 0, 0]) {
						cylinder(h = 100, r = 1.5000000000);
					}
				}
			}
		}
		translate(v = [30.0000000000, 0.0000000000, 0]) {
			rotate(a = [0, 0, 0]) {
				translate(v = [0, 0, -50]) {
					rotate(a = [0, 0, 0]) {
						cylinder(h = 100, r = 1.5000000000);
					}
				}
			}
		}
	}
}
